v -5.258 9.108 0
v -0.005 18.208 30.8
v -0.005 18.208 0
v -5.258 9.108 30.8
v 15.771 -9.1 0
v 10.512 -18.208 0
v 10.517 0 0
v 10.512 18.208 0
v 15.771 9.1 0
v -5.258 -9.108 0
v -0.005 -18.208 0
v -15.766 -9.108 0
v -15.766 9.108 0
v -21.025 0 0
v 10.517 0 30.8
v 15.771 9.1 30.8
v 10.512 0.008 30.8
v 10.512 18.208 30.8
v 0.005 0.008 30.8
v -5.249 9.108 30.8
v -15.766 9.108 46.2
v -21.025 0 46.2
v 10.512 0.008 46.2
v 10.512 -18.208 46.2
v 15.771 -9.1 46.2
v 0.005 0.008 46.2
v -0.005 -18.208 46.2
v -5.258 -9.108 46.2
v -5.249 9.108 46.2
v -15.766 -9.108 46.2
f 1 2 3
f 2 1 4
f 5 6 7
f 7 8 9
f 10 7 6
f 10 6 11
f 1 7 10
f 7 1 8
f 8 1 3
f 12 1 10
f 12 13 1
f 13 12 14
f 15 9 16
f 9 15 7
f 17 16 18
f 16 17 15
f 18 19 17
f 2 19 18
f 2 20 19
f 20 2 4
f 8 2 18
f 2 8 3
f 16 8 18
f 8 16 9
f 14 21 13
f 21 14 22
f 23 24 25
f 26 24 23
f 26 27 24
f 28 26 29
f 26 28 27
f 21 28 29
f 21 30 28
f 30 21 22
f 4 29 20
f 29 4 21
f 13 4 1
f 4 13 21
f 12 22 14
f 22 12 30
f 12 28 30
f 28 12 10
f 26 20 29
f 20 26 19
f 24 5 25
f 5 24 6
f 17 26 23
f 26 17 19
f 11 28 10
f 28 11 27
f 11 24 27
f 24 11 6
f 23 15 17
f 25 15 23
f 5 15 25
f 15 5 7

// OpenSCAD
// file: dimensions.scad
measureX = 9.10; // 92/2/2/sqrt(19)*sqrt(3)
measureY = 9.10; 
measureZ = 7.7; // 54/7 is about 7.7

halfSide = 1*tan(30);
h1 = 1;
dd = 0.001;
// main file
include <dimensions.scad>

hh = [4,6,6];

scale([measureX,measureY,measureZ])  union() {
    translate([halfSide,1,0]) 
    linear_extrude(height = hh[0]*h1, center = false)
    circle(2*halfSide + dd,$fn=6);
    
    translate([-2*halfSide,0,0]) 
    linear_extrude(height = hh[1]*h1, center = false)
    circle(2*halfSide + dd,$fn=6);
    
    translate([halfSide,-1,0]) 
    linear_extrude(height = hh[2]*h1, center = false)
    circle(2*halfSide + dd,$fn=6);
}
